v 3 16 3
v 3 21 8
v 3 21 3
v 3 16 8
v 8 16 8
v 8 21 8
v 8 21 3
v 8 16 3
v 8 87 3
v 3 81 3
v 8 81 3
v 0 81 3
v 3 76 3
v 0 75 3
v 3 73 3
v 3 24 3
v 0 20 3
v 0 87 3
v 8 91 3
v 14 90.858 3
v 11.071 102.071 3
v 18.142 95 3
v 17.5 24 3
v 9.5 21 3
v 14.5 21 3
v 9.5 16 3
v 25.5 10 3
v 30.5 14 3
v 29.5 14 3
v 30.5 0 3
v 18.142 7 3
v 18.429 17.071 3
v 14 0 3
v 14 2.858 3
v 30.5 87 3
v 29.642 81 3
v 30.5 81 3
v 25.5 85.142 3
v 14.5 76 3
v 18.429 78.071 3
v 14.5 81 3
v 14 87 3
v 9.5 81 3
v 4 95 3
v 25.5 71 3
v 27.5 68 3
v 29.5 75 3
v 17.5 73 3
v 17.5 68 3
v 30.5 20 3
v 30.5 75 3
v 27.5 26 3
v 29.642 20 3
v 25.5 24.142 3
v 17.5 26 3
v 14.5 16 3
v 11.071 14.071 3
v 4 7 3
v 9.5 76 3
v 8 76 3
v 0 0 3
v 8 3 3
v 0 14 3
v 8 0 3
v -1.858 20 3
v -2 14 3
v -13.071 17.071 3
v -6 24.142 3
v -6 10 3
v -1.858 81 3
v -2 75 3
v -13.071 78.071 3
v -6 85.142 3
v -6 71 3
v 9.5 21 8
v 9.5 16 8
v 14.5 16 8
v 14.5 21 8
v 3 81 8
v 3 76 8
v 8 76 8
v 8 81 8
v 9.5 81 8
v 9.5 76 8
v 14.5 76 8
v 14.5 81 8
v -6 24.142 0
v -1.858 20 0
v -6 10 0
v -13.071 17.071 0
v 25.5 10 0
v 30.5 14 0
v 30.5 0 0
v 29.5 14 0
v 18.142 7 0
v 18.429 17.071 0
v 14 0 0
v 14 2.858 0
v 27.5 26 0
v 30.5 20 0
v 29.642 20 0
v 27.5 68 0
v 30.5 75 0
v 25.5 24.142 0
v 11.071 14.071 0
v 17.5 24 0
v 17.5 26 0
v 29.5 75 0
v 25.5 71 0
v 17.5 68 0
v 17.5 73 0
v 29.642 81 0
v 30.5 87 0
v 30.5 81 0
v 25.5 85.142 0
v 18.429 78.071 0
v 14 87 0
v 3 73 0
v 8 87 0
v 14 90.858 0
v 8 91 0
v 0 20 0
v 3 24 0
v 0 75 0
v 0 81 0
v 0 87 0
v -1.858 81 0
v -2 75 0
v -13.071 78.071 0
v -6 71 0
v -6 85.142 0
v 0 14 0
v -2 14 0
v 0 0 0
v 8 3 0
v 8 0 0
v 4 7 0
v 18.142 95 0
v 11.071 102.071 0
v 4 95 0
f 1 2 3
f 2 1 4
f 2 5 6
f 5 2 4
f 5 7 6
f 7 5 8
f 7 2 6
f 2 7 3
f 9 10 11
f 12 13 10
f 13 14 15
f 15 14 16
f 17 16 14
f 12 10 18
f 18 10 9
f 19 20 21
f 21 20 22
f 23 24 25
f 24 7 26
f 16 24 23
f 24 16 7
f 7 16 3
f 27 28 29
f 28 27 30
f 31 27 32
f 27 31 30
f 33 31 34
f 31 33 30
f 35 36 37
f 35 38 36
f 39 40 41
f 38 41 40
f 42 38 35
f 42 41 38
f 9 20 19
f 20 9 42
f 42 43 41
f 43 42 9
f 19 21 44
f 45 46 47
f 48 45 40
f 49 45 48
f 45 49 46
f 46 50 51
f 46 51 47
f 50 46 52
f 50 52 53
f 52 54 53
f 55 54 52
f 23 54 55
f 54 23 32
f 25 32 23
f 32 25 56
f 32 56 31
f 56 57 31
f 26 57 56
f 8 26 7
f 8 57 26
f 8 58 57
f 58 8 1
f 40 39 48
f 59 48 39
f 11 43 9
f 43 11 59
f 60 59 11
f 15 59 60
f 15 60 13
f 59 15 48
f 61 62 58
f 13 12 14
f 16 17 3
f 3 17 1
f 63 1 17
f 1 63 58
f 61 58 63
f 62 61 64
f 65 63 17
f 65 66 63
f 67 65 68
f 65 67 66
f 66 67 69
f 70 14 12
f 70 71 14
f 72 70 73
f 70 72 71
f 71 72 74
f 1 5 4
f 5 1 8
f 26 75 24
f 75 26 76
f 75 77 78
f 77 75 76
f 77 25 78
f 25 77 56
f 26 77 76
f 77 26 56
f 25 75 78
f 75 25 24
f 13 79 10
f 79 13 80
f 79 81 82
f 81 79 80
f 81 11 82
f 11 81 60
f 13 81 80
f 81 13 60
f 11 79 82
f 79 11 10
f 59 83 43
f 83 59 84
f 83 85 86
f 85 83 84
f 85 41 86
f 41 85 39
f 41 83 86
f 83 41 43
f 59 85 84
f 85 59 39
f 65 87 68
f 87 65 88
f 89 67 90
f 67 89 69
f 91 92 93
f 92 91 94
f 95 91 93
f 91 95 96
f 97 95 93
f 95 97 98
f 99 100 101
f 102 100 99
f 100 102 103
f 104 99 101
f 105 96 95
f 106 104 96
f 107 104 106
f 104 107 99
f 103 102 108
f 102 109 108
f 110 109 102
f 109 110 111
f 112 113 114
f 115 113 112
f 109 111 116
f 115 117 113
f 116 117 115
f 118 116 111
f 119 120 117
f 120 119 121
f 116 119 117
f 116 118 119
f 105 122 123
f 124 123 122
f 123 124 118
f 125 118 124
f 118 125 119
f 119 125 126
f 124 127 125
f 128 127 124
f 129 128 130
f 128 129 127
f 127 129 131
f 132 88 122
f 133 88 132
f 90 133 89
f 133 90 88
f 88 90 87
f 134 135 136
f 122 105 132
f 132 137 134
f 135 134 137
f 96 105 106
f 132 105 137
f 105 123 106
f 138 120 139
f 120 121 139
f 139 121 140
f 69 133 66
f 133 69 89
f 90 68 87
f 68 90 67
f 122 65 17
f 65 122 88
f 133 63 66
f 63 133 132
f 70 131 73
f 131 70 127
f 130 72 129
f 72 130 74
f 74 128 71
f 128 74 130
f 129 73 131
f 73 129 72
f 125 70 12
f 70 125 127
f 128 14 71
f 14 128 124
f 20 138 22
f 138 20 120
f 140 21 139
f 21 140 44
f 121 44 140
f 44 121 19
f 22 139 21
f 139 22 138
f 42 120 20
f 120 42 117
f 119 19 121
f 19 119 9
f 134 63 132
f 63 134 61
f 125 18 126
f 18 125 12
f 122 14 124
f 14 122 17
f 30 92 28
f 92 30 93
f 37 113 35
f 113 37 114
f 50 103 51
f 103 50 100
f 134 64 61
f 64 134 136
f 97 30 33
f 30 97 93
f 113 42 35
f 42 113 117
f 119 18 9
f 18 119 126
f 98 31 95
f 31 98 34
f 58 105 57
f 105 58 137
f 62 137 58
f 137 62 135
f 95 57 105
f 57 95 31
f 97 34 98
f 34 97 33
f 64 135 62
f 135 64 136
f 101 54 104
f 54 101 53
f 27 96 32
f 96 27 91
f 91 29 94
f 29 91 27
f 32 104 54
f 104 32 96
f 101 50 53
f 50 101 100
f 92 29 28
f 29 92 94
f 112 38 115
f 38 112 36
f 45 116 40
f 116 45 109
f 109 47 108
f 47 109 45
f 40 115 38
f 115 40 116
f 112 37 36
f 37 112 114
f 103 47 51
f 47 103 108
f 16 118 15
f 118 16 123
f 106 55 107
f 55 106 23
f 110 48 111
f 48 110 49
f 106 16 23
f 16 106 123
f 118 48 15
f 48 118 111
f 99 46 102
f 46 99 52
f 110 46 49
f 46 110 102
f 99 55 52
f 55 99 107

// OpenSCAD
// file: base.scad
pi_width=65;

arrow_diag=13;
arrow_spacing=1;
arrow_depth=arrow_diag+arrow_spacing;
entry_depth=arrow_depth-arrow_spacing;

plug_size=5;
plug_gap=1.5;
plug_total_size=plug_size+plug_gap+plug_size;

spacing=3;

base_height=3;

base_width=entry_depth+spacing+pi_width+spacing+spacing;
base_depth=spacing+plug_total_size+spacing+entry_depth;

module arrow_up() {
  translate([8,0,0]) 
  union() {
    rotate([0,0,45]) cube([10,10,base_height]);
    translate([4,4,0]) cube([4,6,base_height]);
  }
}

module arrow_left() {
  translate([4,16,0]) rotate([0,0,270]) arrow_up();
}

module entry_up() {
  difference() {
    arrow_up();
    translate([14,14,0]) cube([3,6,base_height]);
  }
}

module entry_left() { 
  translate([0,arrow_spacing*-1,0]) difference() {
    arrow_left();
    translate([14,14,0]) cube([3,6,base_height]);
  }
}

module pi_plug_single() {
   union() { 
      translate([0,0,base_height]) cube([plug_size,plug_size,plug_size]);
      translate([plug_gap+plug_size,0,base_height]) cube([plug_size,plug_size,plug_size]);
   }
}

module pi_plug() {
   union() { 
      translate([0,0,base_height]) cube([plug_size,plug_size,plug_size]);
      translate([plug_gap+plug_size,0,base_height]) cube([plug_size,plug_size,plug_size]);
      translate([0,pi_width-plug_size,base_height]) cube([plug_size,plug_size,plug_size]);
      translate([plug_gap+plug_size,pi_width-plug_size,base_height]) cube([plug_size,plug_size,plug_size]);
   }
}
// main file
include <base.scad>;

difference() {
  union() {
    cube([base_depth,base_width,base_height]);
      
    translate([spacing,entry_depth+spacing,0]) pi_plug();
      
    translate([arrow_depth*-1,entry_depth-spacing,0]) arrow_up();
    translate([arrow_depth*-1,base_width-entry_depth-spacing,0]) arrow_up();
    translate([0,base_width,0]) arrow_left();
  }
    
  translate([0,0,0]) 
    entry_left();
  translate([base_depth-entry_depth,entry_depth-spacing,0]) 
    entry_up();
  translate([base_depth-entry_depth,base_width-arrow_diag-spacing,0])  
    entry_up();
  
  translate([spacing,entry_depth+spacing+plug_size+spacing,0])
    cube([plug_total_size+spacing,pi_width-plug_size*2-spacing*2,base_height]);
   
  translate([base_depth-spacing-entry_depth,entry_depth*2,0])
    cube([arrow_diag,base_width-entry_depth*3-spacing*2,base_height]);
}
